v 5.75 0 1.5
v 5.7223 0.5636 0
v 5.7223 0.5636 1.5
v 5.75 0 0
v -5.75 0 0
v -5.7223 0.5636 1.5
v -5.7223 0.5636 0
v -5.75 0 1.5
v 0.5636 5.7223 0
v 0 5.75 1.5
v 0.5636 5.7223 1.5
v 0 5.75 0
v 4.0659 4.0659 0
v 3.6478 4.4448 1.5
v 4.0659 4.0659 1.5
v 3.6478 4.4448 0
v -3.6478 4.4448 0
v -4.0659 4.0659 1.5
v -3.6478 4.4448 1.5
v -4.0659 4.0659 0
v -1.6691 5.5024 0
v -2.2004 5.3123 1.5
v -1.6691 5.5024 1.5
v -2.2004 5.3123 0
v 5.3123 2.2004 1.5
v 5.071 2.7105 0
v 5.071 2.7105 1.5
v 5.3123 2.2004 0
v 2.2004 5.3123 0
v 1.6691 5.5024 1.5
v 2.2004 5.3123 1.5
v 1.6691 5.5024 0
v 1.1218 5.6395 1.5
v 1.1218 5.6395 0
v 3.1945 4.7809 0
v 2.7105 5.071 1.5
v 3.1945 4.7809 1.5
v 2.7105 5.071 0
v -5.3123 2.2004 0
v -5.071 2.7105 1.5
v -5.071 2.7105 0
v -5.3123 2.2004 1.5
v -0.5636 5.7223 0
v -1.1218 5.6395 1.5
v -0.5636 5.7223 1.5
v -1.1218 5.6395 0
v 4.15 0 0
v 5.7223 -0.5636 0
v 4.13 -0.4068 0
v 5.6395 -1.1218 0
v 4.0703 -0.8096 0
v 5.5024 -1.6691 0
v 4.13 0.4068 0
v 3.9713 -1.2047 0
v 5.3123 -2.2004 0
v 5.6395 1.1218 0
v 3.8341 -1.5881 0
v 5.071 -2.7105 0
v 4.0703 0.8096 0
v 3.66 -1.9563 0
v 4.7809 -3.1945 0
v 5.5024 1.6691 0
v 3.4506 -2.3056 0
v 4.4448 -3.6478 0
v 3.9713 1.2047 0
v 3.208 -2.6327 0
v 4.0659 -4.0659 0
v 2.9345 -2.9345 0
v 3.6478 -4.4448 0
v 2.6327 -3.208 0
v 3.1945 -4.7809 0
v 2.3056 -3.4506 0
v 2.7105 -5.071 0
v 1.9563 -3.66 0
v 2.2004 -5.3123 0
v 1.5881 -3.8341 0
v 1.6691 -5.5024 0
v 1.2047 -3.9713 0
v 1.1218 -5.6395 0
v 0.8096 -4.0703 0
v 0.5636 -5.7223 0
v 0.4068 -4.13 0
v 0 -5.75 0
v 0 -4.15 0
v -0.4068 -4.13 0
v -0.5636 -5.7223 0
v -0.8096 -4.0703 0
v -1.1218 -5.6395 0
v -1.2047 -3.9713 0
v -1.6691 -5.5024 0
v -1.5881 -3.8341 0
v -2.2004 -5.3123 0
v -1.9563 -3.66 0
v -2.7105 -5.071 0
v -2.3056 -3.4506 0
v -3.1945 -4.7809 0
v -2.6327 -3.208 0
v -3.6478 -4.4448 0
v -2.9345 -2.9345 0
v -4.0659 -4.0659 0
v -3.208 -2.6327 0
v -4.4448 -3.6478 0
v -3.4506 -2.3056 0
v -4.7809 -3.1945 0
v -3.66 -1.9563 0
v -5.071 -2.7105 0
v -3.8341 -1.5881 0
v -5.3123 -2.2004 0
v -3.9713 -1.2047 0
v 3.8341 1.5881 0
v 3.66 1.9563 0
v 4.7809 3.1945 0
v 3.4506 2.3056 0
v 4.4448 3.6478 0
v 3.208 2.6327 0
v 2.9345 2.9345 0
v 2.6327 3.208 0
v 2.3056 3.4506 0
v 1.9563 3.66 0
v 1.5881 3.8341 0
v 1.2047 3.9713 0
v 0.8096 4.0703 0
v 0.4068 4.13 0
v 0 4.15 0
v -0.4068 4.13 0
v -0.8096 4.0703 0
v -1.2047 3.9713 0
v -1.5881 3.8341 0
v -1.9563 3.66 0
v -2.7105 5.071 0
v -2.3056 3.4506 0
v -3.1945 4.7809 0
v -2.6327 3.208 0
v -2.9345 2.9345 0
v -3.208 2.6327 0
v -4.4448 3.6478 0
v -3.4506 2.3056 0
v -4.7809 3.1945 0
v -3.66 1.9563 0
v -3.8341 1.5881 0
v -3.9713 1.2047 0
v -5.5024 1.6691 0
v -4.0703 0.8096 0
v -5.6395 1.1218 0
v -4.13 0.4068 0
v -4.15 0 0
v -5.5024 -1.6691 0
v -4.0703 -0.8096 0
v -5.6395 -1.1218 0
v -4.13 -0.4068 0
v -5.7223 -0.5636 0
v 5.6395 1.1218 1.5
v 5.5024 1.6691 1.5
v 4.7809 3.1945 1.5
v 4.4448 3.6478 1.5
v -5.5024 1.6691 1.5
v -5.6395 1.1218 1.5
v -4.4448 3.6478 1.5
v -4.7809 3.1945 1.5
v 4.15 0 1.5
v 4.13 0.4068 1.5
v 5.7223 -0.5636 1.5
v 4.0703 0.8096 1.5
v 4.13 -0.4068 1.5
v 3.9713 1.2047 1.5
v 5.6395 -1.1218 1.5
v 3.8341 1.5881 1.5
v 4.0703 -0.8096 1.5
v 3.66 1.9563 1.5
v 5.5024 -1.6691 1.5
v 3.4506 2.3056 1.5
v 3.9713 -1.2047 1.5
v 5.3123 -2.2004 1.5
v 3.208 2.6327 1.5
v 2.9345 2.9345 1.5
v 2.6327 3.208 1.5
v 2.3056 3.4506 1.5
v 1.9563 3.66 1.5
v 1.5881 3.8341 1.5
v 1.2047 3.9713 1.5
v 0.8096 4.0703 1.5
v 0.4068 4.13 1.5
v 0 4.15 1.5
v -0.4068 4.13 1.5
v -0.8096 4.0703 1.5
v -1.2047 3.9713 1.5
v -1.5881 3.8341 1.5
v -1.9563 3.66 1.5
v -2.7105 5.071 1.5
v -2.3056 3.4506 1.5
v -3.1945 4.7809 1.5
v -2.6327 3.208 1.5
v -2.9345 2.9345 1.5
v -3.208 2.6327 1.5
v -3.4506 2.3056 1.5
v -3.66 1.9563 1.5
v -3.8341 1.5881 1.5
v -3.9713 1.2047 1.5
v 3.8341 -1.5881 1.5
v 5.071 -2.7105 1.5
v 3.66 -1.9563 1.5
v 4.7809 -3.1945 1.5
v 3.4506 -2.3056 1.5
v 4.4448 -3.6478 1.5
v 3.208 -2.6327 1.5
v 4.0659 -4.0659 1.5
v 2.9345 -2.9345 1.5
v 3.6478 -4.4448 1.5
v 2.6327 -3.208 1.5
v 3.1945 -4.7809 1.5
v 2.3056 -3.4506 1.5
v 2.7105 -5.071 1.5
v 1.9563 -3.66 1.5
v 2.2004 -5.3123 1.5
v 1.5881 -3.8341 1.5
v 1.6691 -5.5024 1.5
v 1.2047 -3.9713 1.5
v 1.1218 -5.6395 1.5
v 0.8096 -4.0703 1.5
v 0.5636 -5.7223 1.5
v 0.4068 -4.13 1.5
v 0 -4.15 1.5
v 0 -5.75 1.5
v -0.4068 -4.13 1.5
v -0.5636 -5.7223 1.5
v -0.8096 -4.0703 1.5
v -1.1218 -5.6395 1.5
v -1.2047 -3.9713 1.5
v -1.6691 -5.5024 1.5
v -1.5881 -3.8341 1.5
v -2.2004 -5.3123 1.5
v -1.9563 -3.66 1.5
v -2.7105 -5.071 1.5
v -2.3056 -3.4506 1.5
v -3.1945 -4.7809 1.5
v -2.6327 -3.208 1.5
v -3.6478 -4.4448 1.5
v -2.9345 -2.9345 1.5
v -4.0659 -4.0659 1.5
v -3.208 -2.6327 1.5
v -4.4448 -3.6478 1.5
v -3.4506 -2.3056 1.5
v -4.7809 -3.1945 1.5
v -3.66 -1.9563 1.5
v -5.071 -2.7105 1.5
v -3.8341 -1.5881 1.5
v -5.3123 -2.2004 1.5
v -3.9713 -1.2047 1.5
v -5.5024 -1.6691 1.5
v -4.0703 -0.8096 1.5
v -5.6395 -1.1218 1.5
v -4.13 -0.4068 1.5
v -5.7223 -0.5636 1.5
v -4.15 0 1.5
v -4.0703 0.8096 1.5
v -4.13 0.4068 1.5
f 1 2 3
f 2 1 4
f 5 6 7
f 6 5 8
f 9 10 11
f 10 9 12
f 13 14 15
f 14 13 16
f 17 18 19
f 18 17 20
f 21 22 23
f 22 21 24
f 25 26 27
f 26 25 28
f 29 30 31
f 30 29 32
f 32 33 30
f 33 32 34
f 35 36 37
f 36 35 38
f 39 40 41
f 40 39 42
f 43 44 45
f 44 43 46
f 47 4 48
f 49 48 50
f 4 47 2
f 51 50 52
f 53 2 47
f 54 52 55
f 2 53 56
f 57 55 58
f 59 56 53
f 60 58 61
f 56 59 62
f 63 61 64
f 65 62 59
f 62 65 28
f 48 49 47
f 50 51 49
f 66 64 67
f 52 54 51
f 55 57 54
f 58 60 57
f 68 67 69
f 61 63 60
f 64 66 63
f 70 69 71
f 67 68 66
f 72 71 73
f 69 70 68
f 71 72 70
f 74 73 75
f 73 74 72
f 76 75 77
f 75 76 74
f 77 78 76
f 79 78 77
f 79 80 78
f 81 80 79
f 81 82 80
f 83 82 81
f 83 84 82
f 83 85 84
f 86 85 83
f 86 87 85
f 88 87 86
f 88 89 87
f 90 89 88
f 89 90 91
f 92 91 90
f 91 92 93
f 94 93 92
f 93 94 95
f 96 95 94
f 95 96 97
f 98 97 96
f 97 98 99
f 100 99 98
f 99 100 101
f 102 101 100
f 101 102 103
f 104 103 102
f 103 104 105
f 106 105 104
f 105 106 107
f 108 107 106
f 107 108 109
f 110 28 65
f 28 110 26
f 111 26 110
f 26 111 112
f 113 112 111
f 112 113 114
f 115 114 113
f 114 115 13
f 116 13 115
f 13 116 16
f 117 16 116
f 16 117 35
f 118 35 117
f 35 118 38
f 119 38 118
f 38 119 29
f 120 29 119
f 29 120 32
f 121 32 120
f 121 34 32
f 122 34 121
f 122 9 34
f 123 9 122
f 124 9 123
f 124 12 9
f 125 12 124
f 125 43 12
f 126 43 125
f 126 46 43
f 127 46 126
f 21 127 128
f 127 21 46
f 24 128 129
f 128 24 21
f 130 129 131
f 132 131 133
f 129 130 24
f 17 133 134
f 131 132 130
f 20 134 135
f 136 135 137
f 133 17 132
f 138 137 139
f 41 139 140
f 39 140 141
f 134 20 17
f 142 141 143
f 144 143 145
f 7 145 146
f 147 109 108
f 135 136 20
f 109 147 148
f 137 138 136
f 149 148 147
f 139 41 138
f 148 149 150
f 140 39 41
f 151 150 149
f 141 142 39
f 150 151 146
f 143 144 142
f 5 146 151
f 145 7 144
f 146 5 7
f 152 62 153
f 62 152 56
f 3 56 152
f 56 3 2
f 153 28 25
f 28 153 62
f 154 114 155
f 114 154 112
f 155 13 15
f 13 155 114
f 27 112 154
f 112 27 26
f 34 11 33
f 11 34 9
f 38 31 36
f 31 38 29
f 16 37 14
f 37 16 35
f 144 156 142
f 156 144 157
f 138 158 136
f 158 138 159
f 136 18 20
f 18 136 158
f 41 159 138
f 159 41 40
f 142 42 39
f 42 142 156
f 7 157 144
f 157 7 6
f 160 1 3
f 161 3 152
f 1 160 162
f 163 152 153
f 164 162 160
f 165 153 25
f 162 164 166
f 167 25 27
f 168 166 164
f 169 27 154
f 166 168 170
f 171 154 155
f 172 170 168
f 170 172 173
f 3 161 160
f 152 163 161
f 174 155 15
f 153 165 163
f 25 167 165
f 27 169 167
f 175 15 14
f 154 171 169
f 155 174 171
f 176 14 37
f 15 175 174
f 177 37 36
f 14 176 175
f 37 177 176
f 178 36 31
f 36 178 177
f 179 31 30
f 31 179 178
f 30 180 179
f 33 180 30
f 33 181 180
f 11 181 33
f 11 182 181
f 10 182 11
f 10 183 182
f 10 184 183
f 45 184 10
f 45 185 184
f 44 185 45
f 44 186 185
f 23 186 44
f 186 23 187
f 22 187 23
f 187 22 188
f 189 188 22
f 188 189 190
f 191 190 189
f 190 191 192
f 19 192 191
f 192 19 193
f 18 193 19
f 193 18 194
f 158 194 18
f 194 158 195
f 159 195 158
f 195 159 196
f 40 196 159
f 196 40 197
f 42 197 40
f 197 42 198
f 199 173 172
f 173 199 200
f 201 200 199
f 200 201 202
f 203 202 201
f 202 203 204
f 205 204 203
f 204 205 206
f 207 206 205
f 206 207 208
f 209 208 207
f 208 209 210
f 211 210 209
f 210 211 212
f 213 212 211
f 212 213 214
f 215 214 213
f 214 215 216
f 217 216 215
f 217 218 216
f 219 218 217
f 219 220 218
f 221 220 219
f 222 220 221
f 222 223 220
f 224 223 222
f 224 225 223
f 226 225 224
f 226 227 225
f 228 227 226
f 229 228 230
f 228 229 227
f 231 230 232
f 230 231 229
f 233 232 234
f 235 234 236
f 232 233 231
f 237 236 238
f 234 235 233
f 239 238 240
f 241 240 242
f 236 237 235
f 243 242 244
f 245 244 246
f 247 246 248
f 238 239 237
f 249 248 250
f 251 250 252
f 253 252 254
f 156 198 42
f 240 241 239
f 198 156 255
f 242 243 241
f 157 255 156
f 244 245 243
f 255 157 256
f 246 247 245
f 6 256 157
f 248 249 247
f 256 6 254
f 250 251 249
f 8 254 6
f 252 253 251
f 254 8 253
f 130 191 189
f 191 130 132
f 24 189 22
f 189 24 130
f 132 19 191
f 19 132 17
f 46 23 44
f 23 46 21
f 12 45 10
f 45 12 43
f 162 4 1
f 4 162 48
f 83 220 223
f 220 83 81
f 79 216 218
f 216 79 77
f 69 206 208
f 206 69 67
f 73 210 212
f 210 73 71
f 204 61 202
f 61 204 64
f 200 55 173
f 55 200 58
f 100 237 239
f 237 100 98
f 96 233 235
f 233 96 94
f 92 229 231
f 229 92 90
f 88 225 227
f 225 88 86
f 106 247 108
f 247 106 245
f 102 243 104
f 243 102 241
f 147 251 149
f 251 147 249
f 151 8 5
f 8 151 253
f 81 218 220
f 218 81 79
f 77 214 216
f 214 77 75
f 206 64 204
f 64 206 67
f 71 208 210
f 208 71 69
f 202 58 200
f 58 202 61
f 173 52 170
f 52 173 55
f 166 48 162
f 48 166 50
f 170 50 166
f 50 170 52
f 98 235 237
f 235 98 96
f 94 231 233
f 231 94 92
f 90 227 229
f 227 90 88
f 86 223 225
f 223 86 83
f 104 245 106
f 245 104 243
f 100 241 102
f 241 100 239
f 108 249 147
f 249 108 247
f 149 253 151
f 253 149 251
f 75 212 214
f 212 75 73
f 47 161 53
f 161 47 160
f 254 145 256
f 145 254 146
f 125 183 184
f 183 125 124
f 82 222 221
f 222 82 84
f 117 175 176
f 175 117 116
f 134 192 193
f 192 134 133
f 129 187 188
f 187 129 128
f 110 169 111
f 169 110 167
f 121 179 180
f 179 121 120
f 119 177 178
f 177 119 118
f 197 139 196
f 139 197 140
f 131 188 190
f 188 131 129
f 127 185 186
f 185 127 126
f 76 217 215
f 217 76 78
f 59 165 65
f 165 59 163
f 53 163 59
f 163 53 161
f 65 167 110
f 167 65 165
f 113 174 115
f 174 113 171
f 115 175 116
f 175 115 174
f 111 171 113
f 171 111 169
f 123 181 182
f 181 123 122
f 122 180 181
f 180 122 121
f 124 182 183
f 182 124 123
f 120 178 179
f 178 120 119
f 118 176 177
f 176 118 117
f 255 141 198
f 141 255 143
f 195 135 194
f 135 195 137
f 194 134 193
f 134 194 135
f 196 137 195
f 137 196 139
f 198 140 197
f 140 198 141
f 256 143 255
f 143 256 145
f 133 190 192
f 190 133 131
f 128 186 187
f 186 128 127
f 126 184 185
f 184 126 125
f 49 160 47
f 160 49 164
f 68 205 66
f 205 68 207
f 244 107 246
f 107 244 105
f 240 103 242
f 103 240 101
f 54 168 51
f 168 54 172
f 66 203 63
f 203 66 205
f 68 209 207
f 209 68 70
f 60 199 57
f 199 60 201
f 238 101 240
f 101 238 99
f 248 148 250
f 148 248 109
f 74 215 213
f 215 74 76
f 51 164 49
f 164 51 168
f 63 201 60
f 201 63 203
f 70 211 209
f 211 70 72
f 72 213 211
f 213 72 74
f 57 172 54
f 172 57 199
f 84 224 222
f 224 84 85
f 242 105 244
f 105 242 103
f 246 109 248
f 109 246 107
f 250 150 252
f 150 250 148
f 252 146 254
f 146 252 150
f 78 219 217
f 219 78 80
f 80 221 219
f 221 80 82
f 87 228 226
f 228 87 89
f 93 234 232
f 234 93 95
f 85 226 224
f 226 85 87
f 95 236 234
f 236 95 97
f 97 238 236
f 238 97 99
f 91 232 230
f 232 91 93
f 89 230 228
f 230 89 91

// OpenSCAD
// Gen-EB — 608 INNER-RACE SPACER (2026-11-02). Print x2 (one under the lower collar on the pedestal bearing, one between the
// upper collar and the top bearing). Touches ONLY the inner race (Ø < 12 mm), so the collar never rubs the seal / outer race.
include <parameters.scad>;
$fn = 64;
difference() {
    cylinder(d=race_spacer_od, h=race_spacer_h);
    translate([0, 0, -0.1]) cylinder(d=race_spacer_id, h=race_spacer_h + 0.2);
}
